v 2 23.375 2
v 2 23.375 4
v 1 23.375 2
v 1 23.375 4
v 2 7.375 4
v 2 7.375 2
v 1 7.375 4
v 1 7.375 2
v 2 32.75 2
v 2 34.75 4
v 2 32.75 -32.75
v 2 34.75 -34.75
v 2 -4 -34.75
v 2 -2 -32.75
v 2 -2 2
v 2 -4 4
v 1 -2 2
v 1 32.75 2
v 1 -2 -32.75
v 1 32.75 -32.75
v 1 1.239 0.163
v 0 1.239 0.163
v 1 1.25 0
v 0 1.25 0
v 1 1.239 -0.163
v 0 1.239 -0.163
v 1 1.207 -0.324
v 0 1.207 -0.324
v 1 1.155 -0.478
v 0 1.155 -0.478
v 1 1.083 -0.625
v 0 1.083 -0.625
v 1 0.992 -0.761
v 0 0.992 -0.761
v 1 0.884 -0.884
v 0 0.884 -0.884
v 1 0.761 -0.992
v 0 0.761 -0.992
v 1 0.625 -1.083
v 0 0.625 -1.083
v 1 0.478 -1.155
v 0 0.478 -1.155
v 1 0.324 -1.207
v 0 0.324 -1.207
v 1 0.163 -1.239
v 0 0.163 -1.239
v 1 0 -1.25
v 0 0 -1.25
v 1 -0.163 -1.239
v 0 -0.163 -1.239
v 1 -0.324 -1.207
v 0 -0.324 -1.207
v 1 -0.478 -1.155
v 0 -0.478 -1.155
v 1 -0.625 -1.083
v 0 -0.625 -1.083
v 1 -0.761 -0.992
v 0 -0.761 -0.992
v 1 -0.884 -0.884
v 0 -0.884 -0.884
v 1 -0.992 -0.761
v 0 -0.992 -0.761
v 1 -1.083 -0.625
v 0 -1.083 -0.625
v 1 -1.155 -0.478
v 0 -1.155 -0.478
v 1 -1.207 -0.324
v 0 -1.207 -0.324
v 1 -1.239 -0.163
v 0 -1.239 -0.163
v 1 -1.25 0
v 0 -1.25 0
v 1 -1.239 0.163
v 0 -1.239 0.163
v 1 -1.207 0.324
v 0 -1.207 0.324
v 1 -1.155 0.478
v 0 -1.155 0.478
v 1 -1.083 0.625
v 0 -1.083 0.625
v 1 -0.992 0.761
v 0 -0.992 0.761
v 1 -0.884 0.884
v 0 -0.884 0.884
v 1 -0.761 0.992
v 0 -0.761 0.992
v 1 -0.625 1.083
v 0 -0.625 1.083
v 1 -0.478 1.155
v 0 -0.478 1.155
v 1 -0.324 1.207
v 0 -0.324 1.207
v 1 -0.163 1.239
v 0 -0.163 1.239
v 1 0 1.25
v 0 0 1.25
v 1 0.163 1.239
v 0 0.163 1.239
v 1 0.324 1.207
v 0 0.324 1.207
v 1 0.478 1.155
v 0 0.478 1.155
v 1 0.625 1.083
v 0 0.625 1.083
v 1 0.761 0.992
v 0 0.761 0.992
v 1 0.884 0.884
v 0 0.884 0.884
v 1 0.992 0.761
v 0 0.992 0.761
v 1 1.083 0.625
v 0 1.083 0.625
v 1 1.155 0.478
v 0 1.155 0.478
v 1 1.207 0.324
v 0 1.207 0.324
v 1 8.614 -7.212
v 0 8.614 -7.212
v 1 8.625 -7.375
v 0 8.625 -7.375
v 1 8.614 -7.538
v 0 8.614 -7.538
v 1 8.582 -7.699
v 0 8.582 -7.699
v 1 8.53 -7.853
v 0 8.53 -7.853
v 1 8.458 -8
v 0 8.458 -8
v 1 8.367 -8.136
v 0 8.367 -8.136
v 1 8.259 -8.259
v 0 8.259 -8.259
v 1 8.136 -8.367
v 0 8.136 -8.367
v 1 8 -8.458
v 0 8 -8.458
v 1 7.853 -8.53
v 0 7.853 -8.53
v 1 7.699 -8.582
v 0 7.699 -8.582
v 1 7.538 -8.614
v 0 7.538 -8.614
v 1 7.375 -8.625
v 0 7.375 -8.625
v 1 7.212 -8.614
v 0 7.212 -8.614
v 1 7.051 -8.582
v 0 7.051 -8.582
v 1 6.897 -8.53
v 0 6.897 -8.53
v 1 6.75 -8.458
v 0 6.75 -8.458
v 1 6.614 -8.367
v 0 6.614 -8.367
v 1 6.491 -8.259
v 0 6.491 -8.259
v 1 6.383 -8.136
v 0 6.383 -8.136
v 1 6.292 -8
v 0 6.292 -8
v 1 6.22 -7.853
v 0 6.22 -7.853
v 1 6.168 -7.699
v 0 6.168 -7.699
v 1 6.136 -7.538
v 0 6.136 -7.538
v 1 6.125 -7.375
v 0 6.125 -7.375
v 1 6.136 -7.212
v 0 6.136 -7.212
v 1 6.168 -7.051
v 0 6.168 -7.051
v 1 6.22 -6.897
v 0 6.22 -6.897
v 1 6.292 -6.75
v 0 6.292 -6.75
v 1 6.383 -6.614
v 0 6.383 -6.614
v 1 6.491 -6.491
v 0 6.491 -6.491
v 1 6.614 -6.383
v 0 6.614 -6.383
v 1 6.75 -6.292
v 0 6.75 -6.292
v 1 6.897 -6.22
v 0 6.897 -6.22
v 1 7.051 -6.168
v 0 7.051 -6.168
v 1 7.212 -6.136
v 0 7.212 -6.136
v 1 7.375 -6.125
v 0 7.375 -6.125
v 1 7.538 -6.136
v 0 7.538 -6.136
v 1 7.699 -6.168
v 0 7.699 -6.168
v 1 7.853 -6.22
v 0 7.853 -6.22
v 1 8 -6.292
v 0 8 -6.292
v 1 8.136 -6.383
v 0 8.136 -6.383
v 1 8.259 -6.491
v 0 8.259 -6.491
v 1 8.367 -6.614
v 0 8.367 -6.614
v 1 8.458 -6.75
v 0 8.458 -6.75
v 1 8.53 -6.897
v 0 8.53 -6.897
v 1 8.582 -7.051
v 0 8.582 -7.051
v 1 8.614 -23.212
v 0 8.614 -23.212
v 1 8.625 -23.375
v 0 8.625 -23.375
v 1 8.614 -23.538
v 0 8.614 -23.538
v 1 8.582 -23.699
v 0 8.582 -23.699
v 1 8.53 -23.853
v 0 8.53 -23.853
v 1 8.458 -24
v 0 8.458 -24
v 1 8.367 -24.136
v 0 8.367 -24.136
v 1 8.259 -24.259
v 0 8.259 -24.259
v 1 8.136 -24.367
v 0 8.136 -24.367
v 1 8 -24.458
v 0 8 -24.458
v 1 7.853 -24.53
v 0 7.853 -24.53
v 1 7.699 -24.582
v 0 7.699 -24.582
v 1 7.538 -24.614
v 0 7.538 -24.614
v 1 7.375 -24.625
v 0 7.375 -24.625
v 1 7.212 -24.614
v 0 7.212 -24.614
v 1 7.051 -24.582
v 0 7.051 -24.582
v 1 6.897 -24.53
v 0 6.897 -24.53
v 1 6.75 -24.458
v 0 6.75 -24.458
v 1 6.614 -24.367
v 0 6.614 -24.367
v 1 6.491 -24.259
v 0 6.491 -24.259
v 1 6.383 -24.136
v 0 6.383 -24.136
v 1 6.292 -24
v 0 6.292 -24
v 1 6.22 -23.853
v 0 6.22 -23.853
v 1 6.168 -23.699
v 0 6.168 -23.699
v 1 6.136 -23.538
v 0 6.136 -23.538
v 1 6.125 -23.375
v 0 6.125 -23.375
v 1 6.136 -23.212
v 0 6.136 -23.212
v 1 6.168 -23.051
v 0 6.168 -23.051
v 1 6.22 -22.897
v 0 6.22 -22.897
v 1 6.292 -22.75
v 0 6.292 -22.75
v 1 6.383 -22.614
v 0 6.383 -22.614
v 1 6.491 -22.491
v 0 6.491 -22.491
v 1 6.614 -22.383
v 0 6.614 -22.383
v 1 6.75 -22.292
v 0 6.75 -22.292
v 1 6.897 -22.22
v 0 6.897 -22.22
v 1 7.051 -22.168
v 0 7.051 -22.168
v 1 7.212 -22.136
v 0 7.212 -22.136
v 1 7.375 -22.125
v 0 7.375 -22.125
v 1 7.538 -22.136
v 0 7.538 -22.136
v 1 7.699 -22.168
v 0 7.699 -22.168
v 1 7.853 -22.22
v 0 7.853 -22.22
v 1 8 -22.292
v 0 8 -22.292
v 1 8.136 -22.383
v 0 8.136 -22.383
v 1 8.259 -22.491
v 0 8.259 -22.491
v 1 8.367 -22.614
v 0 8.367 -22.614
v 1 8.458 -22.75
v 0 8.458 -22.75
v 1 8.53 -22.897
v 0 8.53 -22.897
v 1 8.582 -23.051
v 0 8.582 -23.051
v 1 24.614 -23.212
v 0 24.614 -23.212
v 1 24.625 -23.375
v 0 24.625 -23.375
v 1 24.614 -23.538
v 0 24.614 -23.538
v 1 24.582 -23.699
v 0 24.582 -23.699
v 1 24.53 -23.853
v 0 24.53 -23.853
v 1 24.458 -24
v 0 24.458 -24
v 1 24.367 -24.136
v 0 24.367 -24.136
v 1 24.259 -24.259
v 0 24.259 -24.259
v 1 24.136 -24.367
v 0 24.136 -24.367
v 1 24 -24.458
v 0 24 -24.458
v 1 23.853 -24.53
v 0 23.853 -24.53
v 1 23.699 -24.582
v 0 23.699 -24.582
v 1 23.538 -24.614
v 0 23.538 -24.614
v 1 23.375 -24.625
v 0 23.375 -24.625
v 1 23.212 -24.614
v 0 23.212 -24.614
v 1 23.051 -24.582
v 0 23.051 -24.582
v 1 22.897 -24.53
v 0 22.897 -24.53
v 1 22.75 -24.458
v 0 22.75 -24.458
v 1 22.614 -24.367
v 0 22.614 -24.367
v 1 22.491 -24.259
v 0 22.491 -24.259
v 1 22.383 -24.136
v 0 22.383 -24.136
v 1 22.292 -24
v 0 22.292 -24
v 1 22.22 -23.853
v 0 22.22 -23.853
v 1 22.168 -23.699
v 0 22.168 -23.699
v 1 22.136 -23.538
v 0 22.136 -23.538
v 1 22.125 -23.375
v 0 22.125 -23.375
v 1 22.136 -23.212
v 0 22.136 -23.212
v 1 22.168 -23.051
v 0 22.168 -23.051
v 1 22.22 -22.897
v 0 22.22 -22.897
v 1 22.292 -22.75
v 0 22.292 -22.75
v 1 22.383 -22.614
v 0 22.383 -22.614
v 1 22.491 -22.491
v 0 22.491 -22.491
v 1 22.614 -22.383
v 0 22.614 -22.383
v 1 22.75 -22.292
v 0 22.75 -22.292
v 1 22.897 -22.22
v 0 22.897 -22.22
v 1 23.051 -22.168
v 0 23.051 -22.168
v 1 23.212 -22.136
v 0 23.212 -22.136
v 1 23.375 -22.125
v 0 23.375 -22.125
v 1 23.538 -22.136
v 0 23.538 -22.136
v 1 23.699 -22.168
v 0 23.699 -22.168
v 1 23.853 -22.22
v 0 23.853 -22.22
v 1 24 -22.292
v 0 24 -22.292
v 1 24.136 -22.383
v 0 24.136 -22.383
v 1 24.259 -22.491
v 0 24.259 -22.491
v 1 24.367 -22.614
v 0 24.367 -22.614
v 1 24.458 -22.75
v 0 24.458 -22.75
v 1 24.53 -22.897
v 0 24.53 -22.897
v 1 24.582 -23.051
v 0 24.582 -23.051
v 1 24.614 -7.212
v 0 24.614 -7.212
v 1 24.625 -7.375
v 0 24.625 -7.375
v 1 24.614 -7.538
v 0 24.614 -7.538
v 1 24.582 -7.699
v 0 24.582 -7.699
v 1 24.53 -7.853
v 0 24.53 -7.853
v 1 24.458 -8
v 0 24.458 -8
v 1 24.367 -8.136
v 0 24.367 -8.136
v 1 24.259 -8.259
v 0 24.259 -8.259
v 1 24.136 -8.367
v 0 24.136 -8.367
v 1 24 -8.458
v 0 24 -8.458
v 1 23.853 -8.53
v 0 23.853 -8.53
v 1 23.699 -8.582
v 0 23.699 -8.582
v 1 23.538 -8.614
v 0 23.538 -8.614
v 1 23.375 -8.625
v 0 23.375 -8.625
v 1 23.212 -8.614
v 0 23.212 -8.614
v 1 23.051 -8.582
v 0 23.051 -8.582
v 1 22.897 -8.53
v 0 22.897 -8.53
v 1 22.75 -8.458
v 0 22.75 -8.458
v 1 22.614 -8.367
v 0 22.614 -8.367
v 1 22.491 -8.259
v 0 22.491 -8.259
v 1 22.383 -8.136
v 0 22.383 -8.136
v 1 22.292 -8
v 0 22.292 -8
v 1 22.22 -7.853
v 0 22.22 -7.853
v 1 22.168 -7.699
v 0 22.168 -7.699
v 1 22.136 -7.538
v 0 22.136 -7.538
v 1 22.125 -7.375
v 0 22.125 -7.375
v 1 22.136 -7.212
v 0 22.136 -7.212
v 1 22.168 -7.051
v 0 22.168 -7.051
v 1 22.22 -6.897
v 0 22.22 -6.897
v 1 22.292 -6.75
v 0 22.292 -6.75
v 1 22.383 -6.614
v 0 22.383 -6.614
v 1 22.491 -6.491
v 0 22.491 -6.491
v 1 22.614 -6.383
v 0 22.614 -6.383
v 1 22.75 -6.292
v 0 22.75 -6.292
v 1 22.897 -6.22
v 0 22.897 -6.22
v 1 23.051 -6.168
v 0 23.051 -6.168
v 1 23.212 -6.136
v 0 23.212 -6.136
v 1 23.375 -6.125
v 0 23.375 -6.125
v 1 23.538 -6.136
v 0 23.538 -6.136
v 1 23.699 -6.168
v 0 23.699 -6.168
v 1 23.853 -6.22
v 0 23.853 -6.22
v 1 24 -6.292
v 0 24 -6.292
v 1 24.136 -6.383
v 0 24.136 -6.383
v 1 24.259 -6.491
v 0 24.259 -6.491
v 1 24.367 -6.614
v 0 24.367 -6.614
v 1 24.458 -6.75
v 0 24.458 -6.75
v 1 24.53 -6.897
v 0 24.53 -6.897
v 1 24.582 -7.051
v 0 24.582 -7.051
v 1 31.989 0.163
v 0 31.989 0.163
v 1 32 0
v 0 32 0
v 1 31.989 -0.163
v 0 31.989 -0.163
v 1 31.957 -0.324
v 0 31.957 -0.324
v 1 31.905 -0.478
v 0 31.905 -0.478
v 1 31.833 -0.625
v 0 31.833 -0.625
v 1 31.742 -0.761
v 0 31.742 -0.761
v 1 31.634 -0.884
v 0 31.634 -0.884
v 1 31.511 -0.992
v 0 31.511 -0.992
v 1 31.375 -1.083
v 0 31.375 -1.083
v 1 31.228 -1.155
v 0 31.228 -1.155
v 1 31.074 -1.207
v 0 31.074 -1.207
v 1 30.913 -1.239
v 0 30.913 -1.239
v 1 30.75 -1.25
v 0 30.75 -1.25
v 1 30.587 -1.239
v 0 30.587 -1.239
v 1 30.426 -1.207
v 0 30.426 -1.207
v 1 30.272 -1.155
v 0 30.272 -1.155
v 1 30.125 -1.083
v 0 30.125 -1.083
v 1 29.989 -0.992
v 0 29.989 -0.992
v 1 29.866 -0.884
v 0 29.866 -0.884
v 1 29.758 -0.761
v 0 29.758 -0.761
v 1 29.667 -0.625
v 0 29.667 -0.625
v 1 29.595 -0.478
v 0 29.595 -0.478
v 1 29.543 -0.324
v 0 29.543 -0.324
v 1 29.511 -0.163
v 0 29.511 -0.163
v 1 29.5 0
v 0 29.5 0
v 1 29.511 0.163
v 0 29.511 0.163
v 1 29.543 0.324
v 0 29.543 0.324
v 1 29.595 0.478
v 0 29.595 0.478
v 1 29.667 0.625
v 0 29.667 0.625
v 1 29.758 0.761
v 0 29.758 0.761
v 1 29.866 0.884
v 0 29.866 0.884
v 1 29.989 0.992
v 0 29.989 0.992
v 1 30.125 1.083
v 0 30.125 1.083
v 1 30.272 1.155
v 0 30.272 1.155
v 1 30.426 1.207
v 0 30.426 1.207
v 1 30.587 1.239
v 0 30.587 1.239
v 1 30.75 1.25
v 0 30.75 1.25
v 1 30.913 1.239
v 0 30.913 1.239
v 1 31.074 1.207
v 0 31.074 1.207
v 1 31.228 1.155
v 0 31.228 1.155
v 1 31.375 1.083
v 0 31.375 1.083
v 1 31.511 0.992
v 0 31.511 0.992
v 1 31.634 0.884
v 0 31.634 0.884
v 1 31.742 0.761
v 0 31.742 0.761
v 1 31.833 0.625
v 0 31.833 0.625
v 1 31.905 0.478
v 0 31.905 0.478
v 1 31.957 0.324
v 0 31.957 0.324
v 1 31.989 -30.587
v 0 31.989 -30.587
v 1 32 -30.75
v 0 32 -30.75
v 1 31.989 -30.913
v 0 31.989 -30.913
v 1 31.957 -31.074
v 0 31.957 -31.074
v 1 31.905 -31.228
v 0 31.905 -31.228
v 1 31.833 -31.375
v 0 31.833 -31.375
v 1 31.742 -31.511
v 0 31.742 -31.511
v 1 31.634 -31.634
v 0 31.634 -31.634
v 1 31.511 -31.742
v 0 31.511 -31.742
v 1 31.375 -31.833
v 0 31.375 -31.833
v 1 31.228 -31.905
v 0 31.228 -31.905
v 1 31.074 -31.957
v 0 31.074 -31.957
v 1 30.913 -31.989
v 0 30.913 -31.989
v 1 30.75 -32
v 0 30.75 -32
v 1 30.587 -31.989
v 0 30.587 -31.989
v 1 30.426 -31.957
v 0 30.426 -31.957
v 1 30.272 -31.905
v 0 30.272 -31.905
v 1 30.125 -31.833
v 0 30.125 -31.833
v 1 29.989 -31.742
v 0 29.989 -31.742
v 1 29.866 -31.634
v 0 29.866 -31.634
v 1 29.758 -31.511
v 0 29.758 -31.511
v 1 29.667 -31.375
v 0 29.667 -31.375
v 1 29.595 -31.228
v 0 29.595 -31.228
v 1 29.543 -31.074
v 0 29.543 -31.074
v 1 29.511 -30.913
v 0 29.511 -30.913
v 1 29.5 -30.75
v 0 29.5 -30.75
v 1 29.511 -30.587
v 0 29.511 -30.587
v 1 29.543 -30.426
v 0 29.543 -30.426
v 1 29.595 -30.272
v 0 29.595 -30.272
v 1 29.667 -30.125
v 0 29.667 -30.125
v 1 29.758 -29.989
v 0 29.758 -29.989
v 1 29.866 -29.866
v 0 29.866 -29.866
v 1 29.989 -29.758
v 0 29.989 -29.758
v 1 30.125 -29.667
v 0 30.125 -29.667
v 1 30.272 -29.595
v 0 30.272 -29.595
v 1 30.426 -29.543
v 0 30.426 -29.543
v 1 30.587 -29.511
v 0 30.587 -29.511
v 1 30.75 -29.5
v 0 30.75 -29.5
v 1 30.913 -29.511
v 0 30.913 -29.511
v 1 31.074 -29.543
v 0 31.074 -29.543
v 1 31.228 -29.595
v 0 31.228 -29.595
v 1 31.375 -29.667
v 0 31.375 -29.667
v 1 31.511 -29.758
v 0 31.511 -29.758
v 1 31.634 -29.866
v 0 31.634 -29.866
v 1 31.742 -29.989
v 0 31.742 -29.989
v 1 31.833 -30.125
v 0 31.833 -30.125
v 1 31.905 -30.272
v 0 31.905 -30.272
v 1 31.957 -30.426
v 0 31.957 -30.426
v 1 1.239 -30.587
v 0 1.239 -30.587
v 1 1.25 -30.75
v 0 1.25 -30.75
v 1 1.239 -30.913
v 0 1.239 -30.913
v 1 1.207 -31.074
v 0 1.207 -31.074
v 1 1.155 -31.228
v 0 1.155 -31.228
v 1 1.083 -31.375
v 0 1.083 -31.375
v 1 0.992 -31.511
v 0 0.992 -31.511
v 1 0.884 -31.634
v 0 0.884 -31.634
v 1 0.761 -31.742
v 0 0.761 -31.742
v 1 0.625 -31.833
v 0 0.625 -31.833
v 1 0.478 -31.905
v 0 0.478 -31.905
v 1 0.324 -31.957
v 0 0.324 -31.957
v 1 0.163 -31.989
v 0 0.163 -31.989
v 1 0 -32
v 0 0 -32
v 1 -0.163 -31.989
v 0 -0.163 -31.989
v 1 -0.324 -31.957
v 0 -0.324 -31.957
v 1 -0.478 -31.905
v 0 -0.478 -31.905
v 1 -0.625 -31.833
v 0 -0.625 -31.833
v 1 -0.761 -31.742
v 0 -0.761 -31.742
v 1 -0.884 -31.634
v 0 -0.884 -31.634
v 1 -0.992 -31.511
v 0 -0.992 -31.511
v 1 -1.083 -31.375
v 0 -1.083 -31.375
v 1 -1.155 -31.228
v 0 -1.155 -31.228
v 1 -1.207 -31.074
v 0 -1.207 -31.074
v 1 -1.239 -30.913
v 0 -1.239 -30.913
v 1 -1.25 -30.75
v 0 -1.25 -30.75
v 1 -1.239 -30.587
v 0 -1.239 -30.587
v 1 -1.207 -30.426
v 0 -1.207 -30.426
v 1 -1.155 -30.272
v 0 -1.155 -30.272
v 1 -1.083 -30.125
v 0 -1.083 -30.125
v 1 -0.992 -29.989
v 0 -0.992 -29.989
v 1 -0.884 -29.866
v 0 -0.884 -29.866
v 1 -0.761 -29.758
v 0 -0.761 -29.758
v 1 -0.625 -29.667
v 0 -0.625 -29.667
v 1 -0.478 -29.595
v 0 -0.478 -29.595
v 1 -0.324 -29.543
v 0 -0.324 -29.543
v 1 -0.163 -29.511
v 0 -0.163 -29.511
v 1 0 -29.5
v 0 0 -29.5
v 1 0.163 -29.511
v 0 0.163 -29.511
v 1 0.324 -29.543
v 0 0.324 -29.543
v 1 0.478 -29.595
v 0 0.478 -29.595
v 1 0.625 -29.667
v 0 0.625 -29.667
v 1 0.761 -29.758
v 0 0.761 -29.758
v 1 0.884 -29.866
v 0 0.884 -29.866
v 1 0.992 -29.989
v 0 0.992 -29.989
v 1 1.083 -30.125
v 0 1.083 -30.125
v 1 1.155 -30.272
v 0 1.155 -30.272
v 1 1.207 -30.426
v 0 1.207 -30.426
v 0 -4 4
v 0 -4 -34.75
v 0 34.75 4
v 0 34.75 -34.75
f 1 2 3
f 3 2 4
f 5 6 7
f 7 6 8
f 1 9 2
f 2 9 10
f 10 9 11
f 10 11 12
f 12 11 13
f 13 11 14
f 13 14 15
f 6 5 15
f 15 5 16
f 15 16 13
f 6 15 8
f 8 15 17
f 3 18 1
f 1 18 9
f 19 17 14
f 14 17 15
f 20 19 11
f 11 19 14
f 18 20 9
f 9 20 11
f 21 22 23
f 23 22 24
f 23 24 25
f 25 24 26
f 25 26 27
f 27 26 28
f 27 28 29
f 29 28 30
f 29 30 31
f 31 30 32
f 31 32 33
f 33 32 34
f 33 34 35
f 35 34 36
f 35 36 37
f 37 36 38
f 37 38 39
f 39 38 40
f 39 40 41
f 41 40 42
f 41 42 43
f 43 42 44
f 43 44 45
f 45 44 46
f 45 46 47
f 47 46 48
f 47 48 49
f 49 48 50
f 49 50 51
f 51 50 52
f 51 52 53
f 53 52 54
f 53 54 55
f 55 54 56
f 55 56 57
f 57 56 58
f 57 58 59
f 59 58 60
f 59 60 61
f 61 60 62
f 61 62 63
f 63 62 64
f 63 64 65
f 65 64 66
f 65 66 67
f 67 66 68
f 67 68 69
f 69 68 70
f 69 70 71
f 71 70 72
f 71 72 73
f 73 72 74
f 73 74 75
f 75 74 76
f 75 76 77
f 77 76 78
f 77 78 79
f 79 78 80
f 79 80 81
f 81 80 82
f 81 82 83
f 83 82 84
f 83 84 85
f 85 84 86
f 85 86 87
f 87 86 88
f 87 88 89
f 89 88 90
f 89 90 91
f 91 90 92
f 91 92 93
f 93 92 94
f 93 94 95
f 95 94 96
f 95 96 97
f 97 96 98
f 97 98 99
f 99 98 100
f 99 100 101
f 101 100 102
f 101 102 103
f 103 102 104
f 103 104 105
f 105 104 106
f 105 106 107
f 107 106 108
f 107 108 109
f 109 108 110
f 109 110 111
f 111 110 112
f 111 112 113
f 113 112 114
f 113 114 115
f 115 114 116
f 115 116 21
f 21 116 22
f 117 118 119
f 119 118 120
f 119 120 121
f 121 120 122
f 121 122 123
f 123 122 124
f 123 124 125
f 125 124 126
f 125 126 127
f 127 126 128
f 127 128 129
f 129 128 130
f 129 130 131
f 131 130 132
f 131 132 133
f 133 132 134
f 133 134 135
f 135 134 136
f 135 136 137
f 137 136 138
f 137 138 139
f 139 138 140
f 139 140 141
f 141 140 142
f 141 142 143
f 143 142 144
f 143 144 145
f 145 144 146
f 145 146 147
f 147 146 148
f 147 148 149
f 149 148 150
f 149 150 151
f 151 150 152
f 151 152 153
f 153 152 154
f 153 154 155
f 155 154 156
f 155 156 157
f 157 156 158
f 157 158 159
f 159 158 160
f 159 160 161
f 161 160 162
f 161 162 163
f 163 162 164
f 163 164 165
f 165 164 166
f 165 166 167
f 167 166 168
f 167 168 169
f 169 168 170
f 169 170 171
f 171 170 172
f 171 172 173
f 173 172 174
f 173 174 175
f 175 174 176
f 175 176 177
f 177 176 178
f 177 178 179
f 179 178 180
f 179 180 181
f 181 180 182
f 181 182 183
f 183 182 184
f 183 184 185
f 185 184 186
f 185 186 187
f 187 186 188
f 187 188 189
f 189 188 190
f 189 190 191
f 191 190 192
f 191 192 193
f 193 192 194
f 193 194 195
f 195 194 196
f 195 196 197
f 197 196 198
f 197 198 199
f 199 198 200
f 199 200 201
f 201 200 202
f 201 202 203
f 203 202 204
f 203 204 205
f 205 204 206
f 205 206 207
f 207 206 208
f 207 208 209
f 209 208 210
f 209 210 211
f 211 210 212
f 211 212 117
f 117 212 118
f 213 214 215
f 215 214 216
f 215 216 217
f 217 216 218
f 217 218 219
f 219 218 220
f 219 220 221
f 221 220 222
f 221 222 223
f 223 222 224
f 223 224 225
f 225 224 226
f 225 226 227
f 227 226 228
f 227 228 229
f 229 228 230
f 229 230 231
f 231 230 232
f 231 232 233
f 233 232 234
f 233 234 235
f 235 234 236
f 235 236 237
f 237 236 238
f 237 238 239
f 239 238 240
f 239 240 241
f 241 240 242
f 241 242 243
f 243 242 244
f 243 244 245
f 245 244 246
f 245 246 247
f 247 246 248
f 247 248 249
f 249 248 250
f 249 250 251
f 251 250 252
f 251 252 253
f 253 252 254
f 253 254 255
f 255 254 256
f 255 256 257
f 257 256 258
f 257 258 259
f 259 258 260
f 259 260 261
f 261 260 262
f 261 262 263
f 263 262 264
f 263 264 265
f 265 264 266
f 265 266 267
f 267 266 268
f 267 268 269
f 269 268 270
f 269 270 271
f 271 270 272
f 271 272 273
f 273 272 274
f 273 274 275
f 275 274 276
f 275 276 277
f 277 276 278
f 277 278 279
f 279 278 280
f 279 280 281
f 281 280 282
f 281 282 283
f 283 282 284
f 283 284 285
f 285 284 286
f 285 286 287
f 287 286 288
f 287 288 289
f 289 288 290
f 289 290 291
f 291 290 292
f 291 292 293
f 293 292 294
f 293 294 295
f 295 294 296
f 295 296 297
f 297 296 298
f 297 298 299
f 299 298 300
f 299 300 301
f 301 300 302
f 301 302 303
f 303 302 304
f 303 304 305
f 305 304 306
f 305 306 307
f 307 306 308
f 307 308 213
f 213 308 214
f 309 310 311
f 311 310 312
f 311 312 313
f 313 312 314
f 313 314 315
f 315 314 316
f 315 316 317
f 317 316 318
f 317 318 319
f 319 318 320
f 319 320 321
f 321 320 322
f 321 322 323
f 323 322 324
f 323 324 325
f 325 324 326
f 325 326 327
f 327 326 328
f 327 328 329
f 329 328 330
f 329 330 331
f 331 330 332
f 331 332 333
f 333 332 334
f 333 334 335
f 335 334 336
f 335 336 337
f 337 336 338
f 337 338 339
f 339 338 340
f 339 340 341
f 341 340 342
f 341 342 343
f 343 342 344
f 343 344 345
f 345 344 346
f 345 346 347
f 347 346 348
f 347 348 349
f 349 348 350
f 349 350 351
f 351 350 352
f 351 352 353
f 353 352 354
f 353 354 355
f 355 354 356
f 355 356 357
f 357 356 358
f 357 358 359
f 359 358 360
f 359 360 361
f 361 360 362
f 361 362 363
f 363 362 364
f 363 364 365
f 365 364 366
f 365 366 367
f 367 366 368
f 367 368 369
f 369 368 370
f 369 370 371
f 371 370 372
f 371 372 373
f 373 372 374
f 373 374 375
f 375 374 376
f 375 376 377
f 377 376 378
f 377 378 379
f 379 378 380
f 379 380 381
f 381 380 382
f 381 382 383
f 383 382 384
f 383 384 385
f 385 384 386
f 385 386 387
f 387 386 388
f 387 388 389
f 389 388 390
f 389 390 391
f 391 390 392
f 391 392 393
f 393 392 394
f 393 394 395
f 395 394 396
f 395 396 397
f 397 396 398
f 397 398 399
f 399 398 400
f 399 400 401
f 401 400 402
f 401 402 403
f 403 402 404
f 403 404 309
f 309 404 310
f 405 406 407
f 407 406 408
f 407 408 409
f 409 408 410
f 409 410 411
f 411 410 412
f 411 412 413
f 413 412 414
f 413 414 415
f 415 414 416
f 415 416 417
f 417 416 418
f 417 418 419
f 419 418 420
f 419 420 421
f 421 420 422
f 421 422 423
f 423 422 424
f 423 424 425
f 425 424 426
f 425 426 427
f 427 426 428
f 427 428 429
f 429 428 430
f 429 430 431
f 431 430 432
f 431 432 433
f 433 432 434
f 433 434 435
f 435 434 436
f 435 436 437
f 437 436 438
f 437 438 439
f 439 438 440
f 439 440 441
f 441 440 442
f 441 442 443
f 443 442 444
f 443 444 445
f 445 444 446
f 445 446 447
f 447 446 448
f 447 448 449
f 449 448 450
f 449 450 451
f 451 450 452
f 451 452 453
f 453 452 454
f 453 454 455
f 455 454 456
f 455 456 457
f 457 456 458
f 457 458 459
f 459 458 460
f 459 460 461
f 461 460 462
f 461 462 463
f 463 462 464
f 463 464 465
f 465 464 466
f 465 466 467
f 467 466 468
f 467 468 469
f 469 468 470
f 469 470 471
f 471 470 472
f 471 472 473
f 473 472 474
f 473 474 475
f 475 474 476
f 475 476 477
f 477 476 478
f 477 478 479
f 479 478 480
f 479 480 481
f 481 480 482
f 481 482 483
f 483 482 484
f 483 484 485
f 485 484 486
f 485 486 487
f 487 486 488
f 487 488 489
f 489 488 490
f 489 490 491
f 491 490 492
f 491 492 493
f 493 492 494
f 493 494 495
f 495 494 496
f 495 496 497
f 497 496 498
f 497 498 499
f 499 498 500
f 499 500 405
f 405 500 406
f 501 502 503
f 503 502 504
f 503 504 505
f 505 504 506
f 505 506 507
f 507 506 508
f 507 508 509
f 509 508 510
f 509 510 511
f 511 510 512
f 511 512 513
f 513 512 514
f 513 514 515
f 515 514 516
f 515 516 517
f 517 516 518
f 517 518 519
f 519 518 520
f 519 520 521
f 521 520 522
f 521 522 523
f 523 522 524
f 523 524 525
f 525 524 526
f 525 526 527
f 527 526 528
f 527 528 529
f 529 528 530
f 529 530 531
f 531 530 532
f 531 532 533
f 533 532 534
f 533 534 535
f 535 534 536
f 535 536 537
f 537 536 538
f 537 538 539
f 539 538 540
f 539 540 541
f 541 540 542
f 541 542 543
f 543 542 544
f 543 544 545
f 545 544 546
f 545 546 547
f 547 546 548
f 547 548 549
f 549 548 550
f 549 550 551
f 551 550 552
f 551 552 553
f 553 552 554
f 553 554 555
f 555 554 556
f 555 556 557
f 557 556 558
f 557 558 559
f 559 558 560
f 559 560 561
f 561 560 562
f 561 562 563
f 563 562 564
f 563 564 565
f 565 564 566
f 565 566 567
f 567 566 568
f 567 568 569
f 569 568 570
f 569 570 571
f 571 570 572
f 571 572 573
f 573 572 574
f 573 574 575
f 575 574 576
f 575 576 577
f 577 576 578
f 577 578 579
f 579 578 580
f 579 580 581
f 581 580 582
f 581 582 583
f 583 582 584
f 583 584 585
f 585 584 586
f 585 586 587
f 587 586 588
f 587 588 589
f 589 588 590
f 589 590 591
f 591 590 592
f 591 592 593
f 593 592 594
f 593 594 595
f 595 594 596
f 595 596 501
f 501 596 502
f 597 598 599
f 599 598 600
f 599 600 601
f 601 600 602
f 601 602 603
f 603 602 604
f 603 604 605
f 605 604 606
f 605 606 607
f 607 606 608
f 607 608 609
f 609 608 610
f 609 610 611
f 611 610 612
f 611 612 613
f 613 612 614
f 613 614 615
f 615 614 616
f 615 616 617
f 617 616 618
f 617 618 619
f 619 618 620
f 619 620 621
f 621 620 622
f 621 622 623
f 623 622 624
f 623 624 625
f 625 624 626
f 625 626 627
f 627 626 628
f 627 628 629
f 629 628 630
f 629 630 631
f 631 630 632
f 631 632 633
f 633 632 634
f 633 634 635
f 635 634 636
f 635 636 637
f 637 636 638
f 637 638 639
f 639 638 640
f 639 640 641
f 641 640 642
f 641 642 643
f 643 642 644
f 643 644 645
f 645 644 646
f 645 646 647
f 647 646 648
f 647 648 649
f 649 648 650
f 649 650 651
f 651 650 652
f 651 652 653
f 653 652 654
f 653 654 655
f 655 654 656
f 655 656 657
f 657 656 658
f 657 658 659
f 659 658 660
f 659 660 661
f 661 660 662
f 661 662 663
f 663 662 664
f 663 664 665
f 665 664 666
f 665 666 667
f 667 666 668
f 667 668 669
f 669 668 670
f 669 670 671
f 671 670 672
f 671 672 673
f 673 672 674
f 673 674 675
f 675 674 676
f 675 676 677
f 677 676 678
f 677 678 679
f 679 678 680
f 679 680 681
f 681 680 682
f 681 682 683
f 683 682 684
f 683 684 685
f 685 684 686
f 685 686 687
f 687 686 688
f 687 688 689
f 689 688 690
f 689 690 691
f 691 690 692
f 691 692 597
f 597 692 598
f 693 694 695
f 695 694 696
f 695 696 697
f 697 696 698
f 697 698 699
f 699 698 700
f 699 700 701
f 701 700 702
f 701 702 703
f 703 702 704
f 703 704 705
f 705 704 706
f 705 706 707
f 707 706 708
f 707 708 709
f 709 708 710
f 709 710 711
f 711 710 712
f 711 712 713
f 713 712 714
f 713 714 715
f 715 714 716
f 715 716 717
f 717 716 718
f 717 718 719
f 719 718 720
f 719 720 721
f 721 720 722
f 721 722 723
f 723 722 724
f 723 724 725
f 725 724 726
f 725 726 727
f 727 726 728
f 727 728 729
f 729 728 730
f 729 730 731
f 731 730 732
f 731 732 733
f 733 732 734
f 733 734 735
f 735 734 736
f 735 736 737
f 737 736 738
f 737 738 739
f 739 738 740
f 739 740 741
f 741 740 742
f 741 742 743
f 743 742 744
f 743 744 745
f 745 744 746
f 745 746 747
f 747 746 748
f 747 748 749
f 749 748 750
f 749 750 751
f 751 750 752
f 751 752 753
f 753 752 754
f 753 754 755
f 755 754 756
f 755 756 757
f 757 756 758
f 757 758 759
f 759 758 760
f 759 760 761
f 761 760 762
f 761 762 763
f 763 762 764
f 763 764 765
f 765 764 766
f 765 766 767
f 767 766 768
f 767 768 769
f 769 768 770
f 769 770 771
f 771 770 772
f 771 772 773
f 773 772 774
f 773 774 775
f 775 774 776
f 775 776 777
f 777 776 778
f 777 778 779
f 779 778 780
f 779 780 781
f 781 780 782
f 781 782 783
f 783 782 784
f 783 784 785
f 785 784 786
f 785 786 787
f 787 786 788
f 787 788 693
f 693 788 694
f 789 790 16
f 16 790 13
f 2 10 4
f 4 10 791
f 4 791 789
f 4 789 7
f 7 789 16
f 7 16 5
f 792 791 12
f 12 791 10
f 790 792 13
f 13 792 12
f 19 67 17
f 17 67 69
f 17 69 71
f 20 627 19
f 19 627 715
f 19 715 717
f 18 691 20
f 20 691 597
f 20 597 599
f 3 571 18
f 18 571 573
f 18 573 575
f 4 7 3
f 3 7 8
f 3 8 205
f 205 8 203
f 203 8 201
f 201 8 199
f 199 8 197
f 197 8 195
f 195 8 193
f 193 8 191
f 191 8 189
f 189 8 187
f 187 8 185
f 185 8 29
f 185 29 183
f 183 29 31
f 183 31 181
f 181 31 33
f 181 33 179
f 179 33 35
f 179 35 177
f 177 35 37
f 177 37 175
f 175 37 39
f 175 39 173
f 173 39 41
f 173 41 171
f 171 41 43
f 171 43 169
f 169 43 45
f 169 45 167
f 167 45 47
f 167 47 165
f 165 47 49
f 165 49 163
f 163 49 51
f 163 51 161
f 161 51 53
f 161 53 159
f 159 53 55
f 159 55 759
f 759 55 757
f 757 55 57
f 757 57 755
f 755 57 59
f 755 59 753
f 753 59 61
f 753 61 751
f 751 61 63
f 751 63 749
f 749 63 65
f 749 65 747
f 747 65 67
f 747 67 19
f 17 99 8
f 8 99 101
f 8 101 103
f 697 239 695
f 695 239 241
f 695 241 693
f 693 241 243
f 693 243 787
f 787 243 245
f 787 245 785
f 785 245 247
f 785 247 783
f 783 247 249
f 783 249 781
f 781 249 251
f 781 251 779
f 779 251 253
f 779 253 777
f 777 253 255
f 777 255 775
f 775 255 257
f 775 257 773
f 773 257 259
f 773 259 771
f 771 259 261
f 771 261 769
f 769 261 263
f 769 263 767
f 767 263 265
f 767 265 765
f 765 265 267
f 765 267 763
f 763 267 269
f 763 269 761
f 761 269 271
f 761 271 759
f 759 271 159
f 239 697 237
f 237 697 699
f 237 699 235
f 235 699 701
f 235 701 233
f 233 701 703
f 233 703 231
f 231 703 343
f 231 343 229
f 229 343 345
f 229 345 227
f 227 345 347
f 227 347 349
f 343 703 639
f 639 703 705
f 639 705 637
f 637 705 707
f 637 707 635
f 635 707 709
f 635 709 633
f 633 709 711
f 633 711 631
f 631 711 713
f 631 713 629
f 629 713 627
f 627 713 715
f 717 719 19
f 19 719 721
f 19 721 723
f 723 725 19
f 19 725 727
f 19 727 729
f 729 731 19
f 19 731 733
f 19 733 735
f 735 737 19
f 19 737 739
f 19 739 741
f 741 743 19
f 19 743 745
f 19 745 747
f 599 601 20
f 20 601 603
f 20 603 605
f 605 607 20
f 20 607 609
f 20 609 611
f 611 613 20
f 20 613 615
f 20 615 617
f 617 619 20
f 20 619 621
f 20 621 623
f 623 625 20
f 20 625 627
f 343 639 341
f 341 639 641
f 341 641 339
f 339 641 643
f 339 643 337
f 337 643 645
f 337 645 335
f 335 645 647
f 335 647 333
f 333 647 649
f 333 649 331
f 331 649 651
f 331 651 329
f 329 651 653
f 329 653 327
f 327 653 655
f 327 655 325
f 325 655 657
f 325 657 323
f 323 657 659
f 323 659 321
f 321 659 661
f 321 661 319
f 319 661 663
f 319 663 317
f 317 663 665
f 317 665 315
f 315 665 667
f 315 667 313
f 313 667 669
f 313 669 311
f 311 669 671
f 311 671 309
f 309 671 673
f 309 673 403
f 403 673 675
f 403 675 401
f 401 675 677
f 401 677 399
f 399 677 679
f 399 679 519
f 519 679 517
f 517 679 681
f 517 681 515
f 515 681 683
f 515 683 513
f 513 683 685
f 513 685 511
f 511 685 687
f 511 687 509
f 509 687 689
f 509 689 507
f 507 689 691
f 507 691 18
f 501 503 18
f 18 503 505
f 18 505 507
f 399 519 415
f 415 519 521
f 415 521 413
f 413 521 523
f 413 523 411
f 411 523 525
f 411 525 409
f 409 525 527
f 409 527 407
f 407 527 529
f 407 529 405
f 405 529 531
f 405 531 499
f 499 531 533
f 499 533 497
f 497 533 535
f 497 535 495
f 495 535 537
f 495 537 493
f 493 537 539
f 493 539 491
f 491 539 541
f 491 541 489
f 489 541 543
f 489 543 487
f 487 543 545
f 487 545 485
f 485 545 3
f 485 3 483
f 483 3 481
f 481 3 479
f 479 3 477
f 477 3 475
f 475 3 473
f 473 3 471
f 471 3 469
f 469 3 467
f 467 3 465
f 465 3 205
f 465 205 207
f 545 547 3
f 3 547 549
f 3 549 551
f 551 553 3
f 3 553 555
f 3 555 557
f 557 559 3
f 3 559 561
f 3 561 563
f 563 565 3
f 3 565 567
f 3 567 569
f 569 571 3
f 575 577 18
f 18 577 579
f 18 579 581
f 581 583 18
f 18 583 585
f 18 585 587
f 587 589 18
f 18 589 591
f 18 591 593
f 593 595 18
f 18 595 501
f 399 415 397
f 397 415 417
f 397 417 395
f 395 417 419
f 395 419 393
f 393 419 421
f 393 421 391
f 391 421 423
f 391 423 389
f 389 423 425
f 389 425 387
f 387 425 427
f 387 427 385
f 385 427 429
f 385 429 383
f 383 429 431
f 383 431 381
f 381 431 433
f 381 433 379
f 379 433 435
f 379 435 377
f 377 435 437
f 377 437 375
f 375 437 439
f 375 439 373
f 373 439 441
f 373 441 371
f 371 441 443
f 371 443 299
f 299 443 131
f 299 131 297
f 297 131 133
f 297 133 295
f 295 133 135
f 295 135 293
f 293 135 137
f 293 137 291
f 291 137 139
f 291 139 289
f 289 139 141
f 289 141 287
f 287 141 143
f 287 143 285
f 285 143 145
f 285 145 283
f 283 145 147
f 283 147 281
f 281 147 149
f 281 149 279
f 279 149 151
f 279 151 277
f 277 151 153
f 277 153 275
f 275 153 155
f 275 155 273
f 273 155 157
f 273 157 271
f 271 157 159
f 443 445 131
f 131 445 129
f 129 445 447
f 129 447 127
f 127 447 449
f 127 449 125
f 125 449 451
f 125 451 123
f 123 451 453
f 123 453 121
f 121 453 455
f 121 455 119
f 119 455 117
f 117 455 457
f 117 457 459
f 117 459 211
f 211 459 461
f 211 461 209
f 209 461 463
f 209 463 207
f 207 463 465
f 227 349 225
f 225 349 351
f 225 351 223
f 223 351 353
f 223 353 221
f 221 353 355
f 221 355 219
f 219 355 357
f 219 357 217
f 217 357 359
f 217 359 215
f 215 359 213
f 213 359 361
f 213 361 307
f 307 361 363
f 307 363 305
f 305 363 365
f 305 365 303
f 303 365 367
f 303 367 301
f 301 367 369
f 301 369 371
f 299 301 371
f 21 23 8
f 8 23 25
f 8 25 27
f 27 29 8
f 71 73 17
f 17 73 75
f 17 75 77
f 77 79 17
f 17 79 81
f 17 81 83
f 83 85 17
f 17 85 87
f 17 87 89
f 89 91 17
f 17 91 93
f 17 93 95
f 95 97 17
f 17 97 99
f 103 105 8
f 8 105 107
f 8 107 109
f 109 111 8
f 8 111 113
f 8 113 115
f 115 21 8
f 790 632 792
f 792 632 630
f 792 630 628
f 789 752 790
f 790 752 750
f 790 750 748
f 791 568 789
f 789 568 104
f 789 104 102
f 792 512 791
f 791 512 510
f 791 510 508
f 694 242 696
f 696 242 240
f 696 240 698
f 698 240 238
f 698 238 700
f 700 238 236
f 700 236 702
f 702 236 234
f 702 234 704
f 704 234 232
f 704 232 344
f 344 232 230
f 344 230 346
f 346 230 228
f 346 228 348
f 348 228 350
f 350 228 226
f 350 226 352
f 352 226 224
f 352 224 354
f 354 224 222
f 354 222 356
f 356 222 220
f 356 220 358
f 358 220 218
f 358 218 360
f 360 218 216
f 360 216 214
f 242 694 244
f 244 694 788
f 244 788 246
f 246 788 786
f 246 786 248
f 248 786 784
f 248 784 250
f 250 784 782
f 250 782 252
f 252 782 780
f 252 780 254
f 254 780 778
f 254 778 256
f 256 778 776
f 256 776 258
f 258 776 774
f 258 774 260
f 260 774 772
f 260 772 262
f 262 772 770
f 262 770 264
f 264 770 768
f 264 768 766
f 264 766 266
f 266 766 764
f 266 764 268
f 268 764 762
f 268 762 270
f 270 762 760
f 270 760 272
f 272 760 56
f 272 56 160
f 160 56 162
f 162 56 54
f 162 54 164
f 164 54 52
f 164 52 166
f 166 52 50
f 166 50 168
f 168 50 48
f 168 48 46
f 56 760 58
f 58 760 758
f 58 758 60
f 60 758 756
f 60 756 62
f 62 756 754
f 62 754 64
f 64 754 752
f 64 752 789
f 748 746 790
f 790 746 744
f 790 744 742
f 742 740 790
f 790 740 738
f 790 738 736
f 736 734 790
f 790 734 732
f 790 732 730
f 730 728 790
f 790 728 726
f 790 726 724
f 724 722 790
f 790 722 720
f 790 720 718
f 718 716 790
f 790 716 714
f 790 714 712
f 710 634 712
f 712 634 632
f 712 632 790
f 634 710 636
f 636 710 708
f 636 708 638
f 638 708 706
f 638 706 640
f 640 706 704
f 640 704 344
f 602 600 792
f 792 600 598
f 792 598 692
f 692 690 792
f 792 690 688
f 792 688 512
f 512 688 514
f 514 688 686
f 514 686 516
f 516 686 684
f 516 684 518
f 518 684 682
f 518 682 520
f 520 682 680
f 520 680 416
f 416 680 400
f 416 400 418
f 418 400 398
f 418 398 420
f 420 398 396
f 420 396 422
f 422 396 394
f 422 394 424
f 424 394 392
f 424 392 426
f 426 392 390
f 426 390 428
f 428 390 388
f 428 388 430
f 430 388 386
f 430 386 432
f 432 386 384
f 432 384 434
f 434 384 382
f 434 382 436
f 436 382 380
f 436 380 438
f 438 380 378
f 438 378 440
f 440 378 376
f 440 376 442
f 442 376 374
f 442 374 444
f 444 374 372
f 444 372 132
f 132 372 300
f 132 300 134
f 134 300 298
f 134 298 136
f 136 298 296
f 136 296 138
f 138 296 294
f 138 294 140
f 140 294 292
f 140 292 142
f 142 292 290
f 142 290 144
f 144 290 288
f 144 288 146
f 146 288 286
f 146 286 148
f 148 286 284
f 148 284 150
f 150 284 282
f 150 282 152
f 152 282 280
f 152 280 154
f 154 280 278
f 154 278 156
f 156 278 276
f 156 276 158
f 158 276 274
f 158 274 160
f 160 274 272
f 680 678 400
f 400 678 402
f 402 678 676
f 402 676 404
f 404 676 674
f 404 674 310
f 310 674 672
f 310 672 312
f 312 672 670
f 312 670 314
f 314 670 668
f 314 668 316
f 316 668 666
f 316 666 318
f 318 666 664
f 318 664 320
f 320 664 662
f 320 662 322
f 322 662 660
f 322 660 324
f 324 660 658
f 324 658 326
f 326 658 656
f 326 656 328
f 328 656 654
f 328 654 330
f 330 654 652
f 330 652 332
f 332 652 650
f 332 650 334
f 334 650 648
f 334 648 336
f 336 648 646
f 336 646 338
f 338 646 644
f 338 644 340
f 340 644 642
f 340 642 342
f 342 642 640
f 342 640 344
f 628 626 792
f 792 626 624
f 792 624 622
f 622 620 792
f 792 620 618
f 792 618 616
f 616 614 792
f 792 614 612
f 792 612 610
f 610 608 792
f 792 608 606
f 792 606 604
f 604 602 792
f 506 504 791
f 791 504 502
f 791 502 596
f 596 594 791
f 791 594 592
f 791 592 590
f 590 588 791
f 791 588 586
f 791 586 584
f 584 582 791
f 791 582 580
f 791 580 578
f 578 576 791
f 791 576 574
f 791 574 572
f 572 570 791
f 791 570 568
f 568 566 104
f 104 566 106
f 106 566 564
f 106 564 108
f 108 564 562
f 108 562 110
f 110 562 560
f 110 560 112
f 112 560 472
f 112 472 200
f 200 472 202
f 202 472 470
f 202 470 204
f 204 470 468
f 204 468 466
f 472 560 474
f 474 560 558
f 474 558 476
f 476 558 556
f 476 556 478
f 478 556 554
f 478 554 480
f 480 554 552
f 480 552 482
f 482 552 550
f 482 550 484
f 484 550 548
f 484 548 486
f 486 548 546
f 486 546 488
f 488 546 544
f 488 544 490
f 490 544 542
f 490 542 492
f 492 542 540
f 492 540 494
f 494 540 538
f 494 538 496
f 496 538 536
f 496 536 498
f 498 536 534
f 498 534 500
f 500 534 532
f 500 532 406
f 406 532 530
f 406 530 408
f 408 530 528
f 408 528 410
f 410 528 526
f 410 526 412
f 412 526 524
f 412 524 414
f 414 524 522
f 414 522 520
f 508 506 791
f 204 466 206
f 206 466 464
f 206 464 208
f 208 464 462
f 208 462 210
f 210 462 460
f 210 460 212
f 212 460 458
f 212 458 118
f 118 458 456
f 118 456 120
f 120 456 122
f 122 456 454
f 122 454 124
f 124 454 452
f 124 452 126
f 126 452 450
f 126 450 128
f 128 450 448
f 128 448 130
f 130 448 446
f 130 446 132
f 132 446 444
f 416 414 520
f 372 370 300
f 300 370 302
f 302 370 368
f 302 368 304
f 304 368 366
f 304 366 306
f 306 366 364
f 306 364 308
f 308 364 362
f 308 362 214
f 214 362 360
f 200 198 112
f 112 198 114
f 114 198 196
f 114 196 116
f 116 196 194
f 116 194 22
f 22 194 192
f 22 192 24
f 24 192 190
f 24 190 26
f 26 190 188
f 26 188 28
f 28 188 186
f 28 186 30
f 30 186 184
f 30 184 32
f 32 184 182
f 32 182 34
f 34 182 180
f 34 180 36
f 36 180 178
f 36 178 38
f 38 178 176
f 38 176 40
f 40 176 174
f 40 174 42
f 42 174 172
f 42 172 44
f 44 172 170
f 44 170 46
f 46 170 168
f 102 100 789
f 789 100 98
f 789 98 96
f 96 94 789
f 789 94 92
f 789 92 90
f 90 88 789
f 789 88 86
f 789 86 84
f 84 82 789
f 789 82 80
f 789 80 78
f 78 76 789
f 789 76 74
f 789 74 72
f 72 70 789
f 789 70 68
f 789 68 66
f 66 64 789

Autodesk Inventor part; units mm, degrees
ref_plane "YZ Plane" through (0, 0, 0) normal (1, 0, 0) x (0, 1, 0)
ref_plane "XZ Plane" through (0, 0, 0) normal (0, 1, 0) x (-1, 0, 0)
ref_plane "XY Plane" through (0, 0, 0) normal (0, 0, 1) x (1, 0, 0)
sketch "Sketch1" plane through (0, 0, 0) normal (1, 0, 0) x (0, 1, 0)
  line L0 (0, 0) -> (30.75, 0)
  line L1 (30.75, 0) -> (30.75, -30.75)
  line L2 (30.75, -30.75) -> (0, -30.75)
  line L3 (0, -30.75) -> (0, 0)
  line L4 (32.75, -32.75) -> (32.75, 2)
  line L5 (32.75, 2) -> (-2, 2)
  line L6 (-2, 2) -> (-2, -32.75)
  line L7 (-2, -32.75) -> (32.75, -32.75)
  circle A0 centre (30.75, 0) radius 1.25
  circle A1 centre (30.75, -30.75) radius 1.25
  circle A2 centre (0, -30.75) radius 1.25
  circle A3 centre (0, 0) radius 1.25
  line L8 (-4, 4) -> (34.75, 4)
  line L9 (34.75, 4) -> (34.75, -34.75)
  line L10 (34.75, -34.75) -> (-4, -34.75)
  line L11 (-4, -34.75) -> (-4, 4)
  circle A4 centre (7.375, -7.375) radius 1.25
  circle A5 centre (7.375, -23.375) radius 1.25
  circle A6 centre (23.375, -23.375) radius 1.25
  circle A7 centre (23.375, -7.375) radius 1.25
  dimension "d0" = 30.75
  dimension "d1" = 30.75
  dimension "d2" = 2
  dimension "d3" = 2.5
  dimension "d4" = 2
  dimension "d14" = 2.5
extrude "Extrusion3" add sketch "Sketch1" along normal blind 1 contours L0 A0 L1 A1 L2 A2 L3 A3 | L7 L6 L5 L4 | L8 L9 L10 L11
sketch "Sketch3" plane through (1, 0, 0) normal (1, 0, 0) x (0, 0, -1)
  line L0 (-4, -4) -> (34.75, -4) projected
  line L1 (34.75, -4) -> (34.75, 34.75) projected
  line L2 (-4, -4) -> (34.75, -4)
  line L3 (34.75, -4) -> (34.75, 34.75)
  line L4 (34.75, 34.75) -> (-4, 34.75)
  line L5 (-4, 34.75) -> (-4, -4)
  line L6 (-2, -2) -> (32.75, -2)
  line L7 (32.75, -2) -> (32.75, 32.75)
  line L8 (32.75, 32.75) -> (-2, 32.75)
  line L9 (-2, 32.75) -> (-2, -2)
  point P0 (0, 0)
  dimension "d17" = 2
extrude "Extrusion4" add sketch "Sketch3" along normal blind 1
sketch "Sketch4" plane through (2, 0, 0) normal (1, 0, 0) x (0, 0, -1)
  line L0 (-2, 32.75) -> (-2, -2) projected
  line L1 (-2, 15.375) -> (-2, 23.375)
  line L2 (-2, 23.375) -> (-4, 23.375)
  line L3 (-4, 34.75) -> (-4, -4) projected
  line L4 (-4, 23.375) -> (-4, 7.375)
  line L5 (-4, 7.375) -> (-2, 7.375)
  line L6 (-2, 7.375) -> (-2, 15.375)
  point P0 (0, 0)
  dimension "d20" = 8
  dimension "d21" = 16
extrude "Extrusion5" cut sketch "Sketch4" against normal blind 1
properties part number "Mag_Shield_Back"
